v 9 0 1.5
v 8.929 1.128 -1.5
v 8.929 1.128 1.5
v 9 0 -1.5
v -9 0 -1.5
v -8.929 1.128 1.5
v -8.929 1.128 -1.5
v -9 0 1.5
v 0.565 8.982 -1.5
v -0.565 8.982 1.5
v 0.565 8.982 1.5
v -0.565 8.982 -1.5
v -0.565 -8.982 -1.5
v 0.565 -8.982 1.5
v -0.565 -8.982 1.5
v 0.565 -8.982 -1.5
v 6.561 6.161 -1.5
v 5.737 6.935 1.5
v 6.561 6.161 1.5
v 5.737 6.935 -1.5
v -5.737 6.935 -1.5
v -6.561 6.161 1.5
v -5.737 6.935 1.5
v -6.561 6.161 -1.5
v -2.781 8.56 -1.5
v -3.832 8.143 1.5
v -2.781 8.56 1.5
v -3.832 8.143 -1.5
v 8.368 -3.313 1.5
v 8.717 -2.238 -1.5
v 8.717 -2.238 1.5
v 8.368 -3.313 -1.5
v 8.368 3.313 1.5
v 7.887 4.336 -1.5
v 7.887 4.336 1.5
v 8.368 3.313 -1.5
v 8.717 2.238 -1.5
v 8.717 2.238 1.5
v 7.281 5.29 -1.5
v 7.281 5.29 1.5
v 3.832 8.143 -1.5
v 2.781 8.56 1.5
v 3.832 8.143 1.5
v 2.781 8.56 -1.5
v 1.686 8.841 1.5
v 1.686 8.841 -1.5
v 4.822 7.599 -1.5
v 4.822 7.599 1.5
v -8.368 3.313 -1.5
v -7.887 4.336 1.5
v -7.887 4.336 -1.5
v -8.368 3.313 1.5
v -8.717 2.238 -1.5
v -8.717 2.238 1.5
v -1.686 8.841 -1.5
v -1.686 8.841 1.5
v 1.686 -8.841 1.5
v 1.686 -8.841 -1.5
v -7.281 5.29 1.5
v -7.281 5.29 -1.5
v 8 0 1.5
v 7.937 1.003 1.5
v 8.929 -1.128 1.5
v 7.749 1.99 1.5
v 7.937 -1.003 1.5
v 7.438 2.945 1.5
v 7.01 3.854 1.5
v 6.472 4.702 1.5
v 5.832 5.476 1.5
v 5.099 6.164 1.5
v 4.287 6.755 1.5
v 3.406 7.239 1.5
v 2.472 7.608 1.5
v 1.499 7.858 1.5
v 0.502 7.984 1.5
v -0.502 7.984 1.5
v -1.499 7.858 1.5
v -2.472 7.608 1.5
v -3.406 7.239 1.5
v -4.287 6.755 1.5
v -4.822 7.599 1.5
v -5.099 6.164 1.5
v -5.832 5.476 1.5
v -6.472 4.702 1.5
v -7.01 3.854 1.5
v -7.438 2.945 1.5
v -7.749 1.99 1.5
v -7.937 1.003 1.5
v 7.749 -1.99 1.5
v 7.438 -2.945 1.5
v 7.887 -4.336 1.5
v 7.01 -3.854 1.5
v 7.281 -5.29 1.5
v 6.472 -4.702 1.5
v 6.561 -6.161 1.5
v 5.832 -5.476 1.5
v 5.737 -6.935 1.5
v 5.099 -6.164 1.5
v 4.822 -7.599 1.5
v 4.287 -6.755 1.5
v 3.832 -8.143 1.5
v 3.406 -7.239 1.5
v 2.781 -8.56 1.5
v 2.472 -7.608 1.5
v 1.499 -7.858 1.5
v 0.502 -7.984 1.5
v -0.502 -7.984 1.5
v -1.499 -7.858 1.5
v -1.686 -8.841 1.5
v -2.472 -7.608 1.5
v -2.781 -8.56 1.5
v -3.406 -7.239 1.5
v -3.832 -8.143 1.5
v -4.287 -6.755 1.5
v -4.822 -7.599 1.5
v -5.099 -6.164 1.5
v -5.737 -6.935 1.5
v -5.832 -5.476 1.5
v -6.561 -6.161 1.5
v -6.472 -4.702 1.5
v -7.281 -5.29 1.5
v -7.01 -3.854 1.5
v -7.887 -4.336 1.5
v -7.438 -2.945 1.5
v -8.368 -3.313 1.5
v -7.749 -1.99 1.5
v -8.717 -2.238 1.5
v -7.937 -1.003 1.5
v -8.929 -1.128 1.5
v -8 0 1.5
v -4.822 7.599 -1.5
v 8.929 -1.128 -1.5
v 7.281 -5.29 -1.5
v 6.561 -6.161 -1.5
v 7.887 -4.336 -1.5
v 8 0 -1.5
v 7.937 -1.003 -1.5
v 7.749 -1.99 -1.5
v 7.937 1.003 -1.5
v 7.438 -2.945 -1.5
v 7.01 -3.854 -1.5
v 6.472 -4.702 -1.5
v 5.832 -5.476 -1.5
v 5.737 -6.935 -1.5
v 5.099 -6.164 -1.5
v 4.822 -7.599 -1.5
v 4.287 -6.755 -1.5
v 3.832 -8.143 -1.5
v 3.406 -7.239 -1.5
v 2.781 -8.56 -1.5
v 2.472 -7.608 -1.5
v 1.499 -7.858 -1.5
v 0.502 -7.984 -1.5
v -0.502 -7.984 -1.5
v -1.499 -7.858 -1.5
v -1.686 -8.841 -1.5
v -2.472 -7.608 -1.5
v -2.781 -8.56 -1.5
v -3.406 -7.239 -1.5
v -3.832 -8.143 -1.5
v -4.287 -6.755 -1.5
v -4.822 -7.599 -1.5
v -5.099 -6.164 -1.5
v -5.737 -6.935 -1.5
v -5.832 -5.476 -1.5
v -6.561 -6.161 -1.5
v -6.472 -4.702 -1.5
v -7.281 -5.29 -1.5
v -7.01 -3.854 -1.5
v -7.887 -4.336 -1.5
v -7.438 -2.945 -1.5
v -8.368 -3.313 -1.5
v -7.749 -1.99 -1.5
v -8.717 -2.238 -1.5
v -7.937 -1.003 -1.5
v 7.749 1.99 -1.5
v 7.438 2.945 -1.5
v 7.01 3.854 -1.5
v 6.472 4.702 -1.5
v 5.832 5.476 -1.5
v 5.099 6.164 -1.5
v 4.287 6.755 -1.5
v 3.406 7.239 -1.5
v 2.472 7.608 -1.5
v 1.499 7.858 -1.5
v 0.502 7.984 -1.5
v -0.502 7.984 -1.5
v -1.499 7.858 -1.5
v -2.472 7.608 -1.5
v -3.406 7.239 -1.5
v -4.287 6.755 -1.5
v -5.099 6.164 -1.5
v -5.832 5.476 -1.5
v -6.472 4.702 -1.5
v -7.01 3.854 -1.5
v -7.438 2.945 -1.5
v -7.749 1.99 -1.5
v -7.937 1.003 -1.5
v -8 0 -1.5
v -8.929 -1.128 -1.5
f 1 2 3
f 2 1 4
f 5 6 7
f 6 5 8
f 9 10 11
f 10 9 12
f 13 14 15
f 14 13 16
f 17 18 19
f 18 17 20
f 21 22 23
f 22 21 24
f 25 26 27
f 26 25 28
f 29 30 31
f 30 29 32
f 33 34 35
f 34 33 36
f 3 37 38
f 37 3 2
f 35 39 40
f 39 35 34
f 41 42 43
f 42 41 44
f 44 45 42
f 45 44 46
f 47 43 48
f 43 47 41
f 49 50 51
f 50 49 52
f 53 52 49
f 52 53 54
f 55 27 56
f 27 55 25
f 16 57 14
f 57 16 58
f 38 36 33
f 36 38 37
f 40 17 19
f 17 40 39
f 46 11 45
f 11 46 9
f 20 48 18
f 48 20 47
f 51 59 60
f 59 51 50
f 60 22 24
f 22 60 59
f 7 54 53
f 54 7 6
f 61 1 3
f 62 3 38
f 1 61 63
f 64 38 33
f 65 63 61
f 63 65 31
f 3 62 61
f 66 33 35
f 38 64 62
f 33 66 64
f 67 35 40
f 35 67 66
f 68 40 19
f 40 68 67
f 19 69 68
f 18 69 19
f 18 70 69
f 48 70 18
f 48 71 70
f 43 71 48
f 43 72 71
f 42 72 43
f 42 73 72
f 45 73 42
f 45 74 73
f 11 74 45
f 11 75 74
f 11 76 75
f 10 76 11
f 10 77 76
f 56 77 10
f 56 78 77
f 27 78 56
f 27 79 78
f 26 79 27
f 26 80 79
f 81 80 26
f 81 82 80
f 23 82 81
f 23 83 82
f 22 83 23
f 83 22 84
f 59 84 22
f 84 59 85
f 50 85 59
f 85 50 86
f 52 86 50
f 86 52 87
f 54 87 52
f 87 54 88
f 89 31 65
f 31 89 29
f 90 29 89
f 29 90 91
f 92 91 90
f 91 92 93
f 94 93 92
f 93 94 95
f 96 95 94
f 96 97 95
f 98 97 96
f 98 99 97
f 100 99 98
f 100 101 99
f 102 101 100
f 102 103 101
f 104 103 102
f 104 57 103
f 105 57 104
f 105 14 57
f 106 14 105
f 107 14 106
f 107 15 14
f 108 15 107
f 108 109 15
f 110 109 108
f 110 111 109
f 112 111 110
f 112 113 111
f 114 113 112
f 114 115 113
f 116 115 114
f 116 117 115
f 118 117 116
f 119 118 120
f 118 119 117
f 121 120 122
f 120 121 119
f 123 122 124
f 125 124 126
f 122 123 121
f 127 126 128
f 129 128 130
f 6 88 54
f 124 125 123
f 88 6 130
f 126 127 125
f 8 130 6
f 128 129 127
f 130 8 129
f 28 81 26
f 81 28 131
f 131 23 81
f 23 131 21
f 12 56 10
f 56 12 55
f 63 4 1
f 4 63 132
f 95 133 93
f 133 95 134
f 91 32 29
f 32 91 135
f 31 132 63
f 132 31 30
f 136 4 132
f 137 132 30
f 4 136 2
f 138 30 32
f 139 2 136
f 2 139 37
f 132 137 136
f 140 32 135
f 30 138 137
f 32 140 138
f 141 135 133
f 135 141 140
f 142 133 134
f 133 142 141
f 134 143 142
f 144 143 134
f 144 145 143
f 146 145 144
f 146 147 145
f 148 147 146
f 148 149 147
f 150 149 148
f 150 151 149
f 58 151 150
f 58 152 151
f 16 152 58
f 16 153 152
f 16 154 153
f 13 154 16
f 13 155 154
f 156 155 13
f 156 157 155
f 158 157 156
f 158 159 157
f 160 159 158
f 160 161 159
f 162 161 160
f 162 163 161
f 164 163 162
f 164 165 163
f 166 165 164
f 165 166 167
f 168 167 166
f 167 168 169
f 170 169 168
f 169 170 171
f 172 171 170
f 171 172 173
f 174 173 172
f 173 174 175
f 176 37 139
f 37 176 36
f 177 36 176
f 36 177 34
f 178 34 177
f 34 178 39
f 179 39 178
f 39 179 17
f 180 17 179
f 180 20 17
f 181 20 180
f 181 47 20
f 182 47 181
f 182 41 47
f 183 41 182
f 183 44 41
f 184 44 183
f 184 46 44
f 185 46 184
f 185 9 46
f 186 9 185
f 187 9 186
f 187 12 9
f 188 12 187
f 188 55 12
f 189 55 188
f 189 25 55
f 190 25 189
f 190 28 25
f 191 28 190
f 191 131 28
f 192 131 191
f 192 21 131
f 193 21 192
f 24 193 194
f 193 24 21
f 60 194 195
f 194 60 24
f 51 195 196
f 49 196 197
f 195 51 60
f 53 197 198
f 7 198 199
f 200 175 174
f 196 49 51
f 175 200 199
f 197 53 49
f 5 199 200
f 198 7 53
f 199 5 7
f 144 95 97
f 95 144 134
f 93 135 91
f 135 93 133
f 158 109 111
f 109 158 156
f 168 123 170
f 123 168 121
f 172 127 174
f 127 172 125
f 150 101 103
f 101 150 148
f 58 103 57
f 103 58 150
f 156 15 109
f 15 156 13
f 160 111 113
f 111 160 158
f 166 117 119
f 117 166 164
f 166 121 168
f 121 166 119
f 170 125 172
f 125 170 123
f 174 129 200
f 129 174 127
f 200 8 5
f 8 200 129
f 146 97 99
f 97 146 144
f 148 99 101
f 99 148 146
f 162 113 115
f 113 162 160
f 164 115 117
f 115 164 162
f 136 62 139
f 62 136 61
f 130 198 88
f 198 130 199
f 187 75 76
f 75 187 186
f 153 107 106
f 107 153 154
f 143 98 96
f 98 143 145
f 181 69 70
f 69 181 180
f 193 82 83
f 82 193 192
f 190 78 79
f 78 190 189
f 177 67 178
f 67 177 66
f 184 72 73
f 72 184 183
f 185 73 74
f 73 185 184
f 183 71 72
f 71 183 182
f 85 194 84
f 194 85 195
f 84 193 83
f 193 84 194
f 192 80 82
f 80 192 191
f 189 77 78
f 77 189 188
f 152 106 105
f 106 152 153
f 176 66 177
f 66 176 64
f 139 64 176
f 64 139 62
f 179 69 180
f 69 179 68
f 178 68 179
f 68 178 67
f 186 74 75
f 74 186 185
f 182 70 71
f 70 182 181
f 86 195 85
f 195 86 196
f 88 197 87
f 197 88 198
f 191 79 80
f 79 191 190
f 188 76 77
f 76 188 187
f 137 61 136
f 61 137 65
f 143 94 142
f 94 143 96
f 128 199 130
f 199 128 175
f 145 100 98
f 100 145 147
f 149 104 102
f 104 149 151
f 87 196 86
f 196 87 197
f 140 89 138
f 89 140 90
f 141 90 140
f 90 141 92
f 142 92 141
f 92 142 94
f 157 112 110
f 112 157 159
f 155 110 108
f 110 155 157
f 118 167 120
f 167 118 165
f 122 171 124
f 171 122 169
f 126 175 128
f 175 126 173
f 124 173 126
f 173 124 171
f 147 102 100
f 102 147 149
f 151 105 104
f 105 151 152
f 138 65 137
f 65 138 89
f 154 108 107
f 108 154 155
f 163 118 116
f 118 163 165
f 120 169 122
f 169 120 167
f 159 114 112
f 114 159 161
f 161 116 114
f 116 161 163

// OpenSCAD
$fn = 50;


difference() {
	union() {
		translate(v = [0, 0, -1.5000000000]) {
			cylinder(h = 3, r = 9.0000000000);
		}
	}
	union() {
		translate(v = [0, 0, -100.0000000000]) {
			cylinder(h = 200, r = 8);
		}
	}
}
